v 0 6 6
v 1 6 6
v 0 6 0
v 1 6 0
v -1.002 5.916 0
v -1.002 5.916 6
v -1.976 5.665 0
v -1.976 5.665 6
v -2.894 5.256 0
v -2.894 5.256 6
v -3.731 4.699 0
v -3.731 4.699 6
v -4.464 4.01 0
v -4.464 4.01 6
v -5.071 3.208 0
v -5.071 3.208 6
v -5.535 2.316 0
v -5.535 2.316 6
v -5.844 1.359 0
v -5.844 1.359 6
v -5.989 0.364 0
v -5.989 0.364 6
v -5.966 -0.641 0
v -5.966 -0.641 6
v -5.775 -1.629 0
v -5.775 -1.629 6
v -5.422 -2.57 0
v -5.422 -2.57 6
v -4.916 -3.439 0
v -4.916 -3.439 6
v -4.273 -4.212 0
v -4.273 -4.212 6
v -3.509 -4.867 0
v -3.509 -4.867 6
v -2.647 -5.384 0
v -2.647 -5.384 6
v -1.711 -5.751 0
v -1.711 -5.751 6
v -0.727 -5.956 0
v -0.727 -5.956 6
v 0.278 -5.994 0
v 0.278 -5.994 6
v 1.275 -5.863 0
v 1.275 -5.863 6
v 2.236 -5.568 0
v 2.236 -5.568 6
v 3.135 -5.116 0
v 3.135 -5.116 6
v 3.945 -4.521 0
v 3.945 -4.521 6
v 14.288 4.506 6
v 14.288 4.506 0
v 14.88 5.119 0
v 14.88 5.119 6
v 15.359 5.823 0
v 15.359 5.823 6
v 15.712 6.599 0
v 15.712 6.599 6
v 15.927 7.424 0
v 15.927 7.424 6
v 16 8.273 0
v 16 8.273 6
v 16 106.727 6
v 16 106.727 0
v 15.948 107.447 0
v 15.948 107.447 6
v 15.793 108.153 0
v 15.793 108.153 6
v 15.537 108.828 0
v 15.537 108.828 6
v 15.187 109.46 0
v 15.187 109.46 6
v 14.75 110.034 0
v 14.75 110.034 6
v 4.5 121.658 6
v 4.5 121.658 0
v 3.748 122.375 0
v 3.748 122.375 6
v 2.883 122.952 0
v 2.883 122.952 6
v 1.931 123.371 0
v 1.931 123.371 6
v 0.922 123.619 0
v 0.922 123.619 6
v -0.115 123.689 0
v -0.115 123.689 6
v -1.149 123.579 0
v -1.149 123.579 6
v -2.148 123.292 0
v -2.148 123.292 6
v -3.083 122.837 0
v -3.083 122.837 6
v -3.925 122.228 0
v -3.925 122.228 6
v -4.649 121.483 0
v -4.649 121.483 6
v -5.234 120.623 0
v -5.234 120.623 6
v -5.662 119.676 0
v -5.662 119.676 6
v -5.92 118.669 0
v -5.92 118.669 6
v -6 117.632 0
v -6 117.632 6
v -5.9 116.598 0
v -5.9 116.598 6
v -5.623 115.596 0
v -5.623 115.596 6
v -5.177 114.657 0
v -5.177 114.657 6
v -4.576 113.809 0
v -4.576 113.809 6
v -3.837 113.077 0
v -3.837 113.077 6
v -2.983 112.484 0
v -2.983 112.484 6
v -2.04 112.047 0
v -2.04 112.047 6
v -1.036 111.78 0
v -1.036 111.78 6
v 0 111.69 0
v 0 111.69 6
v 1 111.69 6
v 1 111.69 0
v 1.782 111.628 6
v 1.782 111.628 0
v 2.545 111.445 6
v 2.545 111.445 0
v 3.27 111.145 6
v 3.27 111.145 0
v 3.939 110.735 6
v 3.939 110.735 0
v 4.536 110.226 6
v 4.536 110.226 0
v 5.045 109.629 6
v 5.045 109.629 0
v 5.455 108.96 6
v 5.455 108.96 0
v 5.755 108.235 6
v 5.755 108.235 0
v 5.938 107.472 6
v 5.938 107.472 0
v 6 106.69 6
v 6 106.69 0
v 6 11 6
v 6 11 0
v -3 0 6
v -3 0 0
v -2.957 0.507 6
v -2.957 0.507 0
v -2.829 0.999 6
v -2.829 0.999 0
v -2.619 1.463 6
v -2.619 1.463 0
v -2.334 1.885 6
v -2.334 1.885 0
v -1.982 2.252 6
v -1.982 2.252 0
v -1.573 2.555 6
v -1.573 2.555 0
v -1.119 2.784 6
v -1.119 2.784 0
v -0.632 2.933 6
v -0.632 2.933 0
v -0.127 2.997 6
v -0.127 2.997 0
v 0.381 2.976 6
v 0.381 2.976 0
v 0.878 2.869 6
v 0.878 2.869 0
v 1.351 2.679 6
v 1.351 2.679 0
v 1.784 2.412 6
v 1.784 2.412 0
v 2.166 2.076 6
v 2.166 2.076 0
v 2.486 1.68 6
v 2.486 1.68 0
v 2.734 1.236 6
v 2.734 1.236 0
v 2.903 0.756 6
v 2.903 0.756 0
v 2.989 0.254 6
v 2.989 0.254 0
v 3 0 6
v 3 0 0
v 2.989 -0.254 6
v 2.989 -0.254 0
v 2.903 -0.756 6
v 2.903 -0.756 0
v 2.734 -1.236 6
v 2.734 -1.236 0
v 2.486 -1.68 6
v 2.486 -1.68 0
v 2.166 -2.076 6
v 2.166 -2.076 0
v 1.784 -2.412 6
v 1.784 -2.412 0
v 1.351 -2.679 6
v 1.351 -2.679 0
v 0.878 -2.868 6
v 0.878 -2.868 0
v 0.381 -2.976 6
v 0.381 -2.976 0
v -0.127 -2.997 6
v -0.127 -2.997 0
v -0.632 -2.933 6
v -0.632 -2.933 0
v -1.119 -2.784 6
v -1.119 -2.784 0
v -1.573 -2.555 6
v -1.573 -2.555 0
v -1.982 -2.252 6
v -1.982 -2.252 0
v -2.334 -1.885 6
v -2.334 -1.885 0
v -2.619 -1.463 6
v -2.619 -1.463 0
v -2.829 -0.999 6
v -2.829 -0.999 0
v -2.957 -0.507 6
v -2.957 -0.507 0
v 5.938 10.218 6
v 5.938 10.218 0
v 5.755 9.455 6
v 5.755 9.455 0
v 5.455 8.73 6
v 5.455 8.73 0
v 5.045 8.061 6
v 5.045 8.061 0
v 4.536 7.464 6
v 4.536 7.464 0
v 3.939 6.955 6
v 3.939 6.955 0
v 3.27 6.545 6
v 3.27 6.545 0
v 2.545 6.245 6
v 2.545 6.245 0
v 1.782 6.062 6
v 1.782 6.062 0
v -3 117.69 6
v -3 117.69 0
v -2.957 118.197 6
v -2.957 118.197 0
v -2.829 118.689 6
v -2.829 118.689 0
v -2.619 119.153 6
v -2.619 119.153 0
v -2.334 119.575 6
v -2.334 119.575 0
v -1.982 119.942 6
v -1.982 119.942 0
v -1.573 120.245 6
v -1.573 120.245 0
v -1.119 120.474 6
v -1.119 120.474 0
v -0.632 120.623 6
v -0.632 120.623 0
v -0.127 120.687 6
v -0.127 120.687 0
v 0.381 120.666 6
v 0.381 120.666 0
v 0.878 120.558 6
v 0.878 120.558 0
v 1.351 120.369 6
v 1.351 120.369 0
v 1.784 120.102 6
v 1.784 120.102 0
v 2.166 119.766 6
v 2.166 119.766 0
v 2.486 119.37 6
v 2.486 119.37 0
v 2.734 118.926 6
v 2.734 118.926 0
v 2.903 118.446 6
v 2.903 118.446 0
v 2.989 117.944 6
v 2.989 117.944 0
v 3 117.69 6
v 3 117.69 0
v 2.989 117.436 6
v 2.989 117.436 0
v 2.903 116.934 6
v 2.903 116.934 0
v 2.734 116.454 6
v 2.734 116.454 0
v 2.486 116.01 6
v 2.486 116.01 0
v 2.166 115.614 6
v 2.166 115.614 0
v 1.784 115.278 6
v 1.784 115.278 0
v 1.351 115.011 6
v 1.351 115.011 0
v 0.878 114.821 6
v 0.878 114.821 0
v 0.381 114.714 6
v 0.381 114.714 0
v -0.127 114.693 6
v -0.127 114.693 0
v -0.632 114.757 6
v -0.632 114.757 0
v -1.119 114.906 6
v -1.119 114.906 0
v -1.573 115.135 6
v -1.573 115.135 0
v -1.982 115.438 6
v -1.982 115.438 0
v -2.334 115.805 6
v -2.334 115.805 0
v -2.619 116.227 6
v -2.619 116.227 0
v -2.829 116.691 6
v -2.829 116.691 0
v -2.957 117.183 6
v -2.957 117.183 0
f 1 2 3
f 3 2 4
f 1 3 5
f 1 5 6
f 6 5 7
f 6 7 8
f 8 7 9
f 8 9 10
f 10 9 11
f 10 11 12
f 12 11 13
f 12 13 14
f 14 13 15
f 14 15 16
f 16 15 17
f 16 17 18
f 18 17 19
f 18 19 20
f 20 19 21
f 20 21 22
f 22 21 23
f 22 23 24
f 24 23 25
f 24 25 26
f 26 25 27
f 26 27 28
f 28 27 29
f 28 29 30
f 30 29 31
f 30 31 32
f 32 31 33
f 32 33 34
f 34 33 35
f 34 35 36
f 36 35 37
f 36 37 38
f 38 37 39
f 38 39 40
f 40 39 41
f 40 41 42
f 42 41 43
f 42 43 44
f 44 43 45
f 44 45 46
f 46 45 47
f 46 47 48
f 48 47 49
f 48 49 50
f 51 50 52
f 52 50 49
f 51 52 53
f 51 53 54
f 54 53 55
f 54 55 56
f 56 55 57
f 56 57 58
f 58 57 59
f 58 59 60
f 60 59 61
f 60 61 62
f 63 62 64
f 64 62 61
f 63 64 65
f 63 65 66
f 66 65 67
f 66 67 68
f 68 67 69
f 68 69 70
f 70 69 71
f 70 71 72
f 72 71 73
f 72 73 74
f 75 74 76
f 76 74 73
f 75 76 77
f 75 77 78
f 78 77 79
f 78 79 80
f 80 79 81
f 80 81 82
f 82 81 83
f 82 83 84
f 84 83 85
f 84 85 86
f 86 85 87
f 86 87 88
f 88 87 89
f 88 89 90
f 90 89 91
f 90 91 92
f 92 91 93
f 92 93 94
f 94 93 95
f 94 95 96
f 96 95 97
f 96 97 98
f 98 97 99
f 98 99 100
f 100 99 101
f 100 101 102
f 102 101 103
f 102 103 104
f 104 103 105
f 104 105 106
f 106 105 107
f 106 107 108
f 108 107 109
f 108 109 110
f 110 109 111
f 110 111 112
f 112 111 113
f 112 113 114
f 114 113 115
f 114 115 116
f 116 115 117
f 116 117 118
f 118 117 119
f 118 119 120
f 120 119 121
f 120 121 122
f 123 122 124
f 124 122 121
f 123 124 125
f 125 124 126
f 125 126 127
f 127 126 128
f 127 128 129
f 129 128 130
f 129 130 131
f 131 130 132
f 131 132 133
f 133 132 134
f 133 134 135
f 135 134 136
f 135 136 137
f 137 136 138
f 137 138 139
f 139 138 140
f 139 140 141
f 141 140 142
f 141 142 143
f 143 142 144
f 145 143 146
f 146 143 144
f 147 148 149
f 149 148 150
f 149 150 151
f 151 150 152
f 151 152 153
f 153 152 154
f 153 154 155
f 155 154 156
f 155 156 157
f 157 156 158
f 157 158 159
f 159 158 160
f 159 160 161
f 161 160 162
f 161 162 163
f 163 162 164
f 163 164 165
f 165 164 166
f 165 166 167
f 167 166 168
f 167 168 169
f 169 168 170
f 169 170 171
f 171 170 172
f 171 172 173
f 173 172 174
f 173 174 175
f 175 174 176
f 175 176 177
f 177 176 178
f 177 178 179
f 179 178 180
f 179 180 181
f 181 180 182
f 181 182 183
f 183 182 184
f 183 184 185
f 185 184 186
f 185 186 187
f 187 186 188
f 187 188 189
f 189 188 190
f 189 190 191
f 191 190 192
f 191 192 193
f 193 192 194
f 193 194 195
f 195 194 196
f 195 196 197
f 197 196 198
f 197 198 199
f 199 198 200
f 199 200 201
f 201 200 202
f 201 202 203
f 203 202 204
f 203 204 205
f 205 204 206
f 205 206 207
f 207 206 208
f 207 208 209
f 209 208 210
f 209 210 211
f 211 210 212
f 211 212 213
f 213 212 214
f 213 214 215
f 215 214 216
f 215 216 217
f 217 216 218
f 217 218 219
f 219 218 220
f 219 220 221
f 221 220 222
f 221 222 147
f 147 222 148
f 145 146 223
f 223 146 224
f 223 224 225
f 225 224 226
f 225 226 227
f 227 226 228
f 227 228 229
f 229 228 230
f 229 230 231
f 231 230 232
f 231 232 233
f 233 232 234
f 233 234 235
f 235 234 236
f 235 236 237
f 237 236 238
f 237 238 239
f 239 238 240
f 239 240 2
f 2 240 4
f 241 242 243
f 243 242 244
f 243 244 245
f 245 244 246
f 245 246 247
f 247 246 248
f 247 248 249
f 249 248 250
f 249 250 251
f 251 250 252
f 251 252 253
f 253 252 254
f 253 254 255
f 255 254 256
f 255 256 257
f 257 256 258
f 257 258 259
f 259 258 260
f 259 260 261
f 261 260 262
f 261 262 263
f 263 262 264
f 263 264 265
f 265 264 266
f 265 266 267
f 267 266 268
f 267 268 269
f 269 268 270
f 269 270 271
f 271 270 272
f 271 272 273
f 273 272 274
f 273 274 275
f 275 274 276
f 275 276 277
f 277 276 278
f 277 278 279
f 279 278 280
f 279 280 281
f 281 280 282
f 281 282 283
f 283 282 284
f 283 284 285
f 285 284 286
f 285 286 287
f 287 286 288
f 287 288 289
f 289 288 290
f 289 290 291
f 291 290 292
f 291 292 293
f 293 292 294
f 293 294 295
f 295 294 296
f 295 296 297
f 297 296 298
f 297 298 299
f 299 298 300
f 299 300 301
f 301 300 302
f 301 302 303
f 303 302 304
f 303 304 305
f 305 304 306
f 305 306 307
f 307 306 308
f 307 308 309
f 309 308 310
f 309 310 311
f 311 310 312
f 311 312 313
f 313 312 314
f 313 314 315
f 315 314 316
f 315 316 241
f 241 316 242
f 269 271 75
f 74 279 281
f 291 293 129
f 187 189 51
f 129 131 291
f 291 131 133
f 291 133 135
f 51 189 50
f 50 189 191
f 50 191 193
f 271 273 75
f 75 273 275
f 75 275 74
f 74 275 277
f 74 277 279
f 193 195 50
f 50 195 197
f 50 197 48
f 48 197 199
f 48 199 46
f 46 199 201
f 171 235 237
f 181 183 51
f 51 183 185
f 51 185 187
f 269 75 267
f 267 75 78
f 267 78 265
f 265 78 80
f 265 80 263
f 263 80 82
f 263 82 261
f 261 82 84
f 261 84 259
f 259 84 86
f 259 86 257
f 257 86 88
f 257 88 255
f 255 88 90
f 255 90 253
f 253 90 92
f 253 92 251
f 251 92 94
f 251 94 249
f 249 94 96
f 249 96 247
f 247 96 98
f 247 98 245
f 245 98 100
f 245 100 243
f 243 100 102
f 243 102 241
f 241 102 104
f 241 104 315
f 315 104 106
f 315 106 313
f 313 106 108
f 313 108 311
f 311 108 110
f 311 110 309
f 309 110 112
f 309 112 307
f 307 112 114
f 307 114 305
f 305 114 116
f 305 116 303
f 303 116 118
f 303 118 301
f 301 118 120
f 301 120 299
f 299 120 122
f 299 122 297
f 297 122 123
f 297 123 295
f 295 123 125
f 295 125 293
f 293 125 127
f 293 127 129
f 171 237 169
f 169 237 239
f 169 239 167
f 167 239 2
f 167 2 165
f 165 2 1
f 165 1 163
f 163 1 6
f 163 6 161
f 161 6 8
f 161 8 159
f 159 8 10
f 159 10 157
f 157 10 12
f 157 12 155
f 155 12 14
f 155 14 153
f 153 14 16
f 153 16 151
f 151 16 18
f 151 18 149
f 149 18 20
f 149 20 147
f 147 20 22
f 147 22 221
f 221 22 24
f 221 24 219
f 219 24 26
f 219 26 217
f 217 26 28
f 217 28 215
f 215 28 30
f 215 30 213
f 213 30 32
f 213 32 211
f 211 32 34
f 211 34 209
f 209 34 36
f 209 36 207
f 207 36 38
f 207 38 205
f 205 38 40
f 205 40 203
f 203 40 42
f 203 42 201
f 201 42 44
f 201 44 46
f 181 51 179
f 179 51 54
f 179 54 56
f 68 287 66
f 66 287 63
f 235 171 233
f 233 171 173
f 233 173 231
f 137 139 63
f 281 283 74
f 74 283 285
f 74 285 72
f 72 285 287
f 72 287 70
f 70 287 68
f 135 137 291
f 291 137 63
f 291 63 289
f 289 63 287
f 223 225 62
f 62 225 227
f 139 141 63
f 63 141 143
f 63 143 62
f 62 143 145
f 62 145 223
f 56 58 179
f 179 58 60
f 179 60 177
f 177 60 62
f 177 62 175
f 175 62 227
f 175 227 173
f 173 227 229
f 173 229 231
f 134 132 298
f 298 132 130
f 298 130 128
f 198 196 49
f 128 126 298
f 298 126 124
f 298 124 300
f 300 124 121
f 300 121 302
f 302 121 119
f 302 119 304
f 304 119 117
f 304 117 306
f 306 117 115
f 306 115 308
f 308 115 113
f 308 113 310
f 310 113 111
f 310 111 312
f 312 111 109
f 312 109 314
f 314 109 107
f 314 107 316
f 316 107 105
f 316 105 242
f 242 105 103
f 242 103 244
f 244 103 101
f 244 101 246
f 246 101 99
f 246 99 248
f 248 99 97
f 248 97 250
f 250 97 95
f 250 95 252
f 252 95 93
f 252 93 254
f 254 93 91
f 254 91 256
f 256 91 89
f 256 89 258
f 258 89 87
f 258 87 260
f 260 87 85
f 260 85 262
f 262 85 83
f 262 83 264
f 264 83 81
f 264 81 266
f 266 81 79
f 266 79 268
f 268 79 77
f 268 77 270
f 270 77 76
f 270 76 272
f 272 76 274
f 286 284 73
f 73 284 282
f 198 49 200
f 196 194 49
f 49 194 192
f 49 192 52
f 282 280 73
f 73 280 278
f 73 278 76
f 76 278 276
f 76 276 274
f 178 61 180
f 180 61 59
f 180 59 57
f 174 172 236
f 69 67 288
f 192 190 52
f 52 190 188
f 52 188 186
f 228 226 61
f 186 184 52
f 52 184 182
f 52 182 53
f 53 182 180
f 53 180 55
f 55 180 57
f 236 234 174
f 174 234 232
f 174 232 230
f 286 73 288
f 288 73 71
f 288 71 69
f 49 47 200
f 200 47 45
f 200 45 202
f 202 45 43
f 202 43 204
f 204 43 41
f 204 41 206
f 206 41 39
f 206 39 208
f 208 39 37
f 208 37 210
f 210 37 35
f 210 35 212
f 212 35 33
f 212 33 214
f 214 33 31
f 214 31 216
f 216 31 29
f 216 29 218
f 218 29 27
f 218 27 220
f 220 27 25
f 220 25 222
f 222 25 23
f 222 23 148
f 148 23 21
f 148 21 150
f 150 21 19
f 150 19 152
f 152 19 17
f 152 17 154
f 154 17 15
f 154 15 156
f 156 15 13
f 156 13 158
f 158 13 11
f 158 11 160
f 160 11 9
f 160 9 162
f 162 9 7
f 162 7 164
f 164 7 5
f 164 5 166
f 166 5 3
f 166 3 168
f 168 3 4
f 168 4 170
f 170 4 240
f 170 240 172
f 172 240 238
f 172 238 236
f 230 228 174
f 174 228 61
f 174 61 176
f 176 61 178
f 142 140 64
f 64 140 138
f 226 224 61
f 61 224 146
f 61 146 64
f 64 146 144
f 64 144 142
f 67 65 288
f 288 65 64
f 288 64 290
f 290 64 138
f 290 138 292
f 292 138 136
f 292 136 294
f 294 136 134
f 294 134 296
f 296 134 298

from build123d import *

# Parameters (mm, degrees)
CROQUIS1_R              = 3
CROQUIS1_R_2            = 6
SALIENTE_EXTRUIR1_DEPTH = 6


with BuildPart() as part:
    # Croquis1 → Saliente-Extruir1 (new body)
    with BuildSketch(Plane.XY):
        with BuildLine():
            ThreePointArc((0, -6), (2.10674065, -5.617975065), (3.945205479, -4.520547945))
            ThreePointArc((3.945205479, -4.520547945), (5.462198865, -2.482817666), (6, 0))
            ThreePointArc((6, 0), (4.242640687, 4.242640687), (0, 6))
            ThreePointArc((0, 6), (-4.242640687, 4.242640687), (-6, 0))
            ThreePointArc((-6, 0), (-4.242640687, -4.242640687), (0, -6))
        make_face()
        Circle(CROQUIS1_R, mode=Mode.SUBTRACT)
        with BuildLine():
            ThreePointArc((14.287671233, 4.505603985), (15.551832387, 6.203712551), (16, 8.272727273))
            Line((16, 8.272727273), (16, 106.727272727))
            ThreePointArc((16, 106.727272727), (15.677138032, 108.494864262), (14.750248066, 110.034180564))
            Line((14.750248066, 110.034180564), (4.50029768, 121.658289404))
            ThreePointArc((4.50029768, 121.658289404), (5.612565638, 119.811109842), (6, 117.69))
            ThreePointArc((6, 117.69), (4.242640687, 113.447359313), (0, 111.69))
            Line((0, 111.69), (1, 111.69))
            ThreePointArc((1, 111.69), (4.535533906, 110.225533906), (6, 106.69))
            Line((6, 106.69), (6, 11))
            ThreePointArc((6, 11), (4.535533906, 7.464466094), (1, 6))
            Line((1, 6), (0, 6))
            ThreePointArc((0, 6), (4.242640687, 4.242640687), (6, 0))
            ThreePointArc((6, 0), (5.462198865, -2.482817666), (3.945205479, -4.520547945))
            Line((3.945205479, -4.520547945), (14.287671233, 4.505603985))
        make_face()
        with Locations((0, 117.69)):
            Circle(CROQUIS1_R_2)
        with Locations((0, 117.69)):
            Circle(CROQUIS1_R, mode=Mode.SUBTRACT)
    extrude(amount=SALIENTE_EXTRUIR1_DEPTH)


solid = part.part
